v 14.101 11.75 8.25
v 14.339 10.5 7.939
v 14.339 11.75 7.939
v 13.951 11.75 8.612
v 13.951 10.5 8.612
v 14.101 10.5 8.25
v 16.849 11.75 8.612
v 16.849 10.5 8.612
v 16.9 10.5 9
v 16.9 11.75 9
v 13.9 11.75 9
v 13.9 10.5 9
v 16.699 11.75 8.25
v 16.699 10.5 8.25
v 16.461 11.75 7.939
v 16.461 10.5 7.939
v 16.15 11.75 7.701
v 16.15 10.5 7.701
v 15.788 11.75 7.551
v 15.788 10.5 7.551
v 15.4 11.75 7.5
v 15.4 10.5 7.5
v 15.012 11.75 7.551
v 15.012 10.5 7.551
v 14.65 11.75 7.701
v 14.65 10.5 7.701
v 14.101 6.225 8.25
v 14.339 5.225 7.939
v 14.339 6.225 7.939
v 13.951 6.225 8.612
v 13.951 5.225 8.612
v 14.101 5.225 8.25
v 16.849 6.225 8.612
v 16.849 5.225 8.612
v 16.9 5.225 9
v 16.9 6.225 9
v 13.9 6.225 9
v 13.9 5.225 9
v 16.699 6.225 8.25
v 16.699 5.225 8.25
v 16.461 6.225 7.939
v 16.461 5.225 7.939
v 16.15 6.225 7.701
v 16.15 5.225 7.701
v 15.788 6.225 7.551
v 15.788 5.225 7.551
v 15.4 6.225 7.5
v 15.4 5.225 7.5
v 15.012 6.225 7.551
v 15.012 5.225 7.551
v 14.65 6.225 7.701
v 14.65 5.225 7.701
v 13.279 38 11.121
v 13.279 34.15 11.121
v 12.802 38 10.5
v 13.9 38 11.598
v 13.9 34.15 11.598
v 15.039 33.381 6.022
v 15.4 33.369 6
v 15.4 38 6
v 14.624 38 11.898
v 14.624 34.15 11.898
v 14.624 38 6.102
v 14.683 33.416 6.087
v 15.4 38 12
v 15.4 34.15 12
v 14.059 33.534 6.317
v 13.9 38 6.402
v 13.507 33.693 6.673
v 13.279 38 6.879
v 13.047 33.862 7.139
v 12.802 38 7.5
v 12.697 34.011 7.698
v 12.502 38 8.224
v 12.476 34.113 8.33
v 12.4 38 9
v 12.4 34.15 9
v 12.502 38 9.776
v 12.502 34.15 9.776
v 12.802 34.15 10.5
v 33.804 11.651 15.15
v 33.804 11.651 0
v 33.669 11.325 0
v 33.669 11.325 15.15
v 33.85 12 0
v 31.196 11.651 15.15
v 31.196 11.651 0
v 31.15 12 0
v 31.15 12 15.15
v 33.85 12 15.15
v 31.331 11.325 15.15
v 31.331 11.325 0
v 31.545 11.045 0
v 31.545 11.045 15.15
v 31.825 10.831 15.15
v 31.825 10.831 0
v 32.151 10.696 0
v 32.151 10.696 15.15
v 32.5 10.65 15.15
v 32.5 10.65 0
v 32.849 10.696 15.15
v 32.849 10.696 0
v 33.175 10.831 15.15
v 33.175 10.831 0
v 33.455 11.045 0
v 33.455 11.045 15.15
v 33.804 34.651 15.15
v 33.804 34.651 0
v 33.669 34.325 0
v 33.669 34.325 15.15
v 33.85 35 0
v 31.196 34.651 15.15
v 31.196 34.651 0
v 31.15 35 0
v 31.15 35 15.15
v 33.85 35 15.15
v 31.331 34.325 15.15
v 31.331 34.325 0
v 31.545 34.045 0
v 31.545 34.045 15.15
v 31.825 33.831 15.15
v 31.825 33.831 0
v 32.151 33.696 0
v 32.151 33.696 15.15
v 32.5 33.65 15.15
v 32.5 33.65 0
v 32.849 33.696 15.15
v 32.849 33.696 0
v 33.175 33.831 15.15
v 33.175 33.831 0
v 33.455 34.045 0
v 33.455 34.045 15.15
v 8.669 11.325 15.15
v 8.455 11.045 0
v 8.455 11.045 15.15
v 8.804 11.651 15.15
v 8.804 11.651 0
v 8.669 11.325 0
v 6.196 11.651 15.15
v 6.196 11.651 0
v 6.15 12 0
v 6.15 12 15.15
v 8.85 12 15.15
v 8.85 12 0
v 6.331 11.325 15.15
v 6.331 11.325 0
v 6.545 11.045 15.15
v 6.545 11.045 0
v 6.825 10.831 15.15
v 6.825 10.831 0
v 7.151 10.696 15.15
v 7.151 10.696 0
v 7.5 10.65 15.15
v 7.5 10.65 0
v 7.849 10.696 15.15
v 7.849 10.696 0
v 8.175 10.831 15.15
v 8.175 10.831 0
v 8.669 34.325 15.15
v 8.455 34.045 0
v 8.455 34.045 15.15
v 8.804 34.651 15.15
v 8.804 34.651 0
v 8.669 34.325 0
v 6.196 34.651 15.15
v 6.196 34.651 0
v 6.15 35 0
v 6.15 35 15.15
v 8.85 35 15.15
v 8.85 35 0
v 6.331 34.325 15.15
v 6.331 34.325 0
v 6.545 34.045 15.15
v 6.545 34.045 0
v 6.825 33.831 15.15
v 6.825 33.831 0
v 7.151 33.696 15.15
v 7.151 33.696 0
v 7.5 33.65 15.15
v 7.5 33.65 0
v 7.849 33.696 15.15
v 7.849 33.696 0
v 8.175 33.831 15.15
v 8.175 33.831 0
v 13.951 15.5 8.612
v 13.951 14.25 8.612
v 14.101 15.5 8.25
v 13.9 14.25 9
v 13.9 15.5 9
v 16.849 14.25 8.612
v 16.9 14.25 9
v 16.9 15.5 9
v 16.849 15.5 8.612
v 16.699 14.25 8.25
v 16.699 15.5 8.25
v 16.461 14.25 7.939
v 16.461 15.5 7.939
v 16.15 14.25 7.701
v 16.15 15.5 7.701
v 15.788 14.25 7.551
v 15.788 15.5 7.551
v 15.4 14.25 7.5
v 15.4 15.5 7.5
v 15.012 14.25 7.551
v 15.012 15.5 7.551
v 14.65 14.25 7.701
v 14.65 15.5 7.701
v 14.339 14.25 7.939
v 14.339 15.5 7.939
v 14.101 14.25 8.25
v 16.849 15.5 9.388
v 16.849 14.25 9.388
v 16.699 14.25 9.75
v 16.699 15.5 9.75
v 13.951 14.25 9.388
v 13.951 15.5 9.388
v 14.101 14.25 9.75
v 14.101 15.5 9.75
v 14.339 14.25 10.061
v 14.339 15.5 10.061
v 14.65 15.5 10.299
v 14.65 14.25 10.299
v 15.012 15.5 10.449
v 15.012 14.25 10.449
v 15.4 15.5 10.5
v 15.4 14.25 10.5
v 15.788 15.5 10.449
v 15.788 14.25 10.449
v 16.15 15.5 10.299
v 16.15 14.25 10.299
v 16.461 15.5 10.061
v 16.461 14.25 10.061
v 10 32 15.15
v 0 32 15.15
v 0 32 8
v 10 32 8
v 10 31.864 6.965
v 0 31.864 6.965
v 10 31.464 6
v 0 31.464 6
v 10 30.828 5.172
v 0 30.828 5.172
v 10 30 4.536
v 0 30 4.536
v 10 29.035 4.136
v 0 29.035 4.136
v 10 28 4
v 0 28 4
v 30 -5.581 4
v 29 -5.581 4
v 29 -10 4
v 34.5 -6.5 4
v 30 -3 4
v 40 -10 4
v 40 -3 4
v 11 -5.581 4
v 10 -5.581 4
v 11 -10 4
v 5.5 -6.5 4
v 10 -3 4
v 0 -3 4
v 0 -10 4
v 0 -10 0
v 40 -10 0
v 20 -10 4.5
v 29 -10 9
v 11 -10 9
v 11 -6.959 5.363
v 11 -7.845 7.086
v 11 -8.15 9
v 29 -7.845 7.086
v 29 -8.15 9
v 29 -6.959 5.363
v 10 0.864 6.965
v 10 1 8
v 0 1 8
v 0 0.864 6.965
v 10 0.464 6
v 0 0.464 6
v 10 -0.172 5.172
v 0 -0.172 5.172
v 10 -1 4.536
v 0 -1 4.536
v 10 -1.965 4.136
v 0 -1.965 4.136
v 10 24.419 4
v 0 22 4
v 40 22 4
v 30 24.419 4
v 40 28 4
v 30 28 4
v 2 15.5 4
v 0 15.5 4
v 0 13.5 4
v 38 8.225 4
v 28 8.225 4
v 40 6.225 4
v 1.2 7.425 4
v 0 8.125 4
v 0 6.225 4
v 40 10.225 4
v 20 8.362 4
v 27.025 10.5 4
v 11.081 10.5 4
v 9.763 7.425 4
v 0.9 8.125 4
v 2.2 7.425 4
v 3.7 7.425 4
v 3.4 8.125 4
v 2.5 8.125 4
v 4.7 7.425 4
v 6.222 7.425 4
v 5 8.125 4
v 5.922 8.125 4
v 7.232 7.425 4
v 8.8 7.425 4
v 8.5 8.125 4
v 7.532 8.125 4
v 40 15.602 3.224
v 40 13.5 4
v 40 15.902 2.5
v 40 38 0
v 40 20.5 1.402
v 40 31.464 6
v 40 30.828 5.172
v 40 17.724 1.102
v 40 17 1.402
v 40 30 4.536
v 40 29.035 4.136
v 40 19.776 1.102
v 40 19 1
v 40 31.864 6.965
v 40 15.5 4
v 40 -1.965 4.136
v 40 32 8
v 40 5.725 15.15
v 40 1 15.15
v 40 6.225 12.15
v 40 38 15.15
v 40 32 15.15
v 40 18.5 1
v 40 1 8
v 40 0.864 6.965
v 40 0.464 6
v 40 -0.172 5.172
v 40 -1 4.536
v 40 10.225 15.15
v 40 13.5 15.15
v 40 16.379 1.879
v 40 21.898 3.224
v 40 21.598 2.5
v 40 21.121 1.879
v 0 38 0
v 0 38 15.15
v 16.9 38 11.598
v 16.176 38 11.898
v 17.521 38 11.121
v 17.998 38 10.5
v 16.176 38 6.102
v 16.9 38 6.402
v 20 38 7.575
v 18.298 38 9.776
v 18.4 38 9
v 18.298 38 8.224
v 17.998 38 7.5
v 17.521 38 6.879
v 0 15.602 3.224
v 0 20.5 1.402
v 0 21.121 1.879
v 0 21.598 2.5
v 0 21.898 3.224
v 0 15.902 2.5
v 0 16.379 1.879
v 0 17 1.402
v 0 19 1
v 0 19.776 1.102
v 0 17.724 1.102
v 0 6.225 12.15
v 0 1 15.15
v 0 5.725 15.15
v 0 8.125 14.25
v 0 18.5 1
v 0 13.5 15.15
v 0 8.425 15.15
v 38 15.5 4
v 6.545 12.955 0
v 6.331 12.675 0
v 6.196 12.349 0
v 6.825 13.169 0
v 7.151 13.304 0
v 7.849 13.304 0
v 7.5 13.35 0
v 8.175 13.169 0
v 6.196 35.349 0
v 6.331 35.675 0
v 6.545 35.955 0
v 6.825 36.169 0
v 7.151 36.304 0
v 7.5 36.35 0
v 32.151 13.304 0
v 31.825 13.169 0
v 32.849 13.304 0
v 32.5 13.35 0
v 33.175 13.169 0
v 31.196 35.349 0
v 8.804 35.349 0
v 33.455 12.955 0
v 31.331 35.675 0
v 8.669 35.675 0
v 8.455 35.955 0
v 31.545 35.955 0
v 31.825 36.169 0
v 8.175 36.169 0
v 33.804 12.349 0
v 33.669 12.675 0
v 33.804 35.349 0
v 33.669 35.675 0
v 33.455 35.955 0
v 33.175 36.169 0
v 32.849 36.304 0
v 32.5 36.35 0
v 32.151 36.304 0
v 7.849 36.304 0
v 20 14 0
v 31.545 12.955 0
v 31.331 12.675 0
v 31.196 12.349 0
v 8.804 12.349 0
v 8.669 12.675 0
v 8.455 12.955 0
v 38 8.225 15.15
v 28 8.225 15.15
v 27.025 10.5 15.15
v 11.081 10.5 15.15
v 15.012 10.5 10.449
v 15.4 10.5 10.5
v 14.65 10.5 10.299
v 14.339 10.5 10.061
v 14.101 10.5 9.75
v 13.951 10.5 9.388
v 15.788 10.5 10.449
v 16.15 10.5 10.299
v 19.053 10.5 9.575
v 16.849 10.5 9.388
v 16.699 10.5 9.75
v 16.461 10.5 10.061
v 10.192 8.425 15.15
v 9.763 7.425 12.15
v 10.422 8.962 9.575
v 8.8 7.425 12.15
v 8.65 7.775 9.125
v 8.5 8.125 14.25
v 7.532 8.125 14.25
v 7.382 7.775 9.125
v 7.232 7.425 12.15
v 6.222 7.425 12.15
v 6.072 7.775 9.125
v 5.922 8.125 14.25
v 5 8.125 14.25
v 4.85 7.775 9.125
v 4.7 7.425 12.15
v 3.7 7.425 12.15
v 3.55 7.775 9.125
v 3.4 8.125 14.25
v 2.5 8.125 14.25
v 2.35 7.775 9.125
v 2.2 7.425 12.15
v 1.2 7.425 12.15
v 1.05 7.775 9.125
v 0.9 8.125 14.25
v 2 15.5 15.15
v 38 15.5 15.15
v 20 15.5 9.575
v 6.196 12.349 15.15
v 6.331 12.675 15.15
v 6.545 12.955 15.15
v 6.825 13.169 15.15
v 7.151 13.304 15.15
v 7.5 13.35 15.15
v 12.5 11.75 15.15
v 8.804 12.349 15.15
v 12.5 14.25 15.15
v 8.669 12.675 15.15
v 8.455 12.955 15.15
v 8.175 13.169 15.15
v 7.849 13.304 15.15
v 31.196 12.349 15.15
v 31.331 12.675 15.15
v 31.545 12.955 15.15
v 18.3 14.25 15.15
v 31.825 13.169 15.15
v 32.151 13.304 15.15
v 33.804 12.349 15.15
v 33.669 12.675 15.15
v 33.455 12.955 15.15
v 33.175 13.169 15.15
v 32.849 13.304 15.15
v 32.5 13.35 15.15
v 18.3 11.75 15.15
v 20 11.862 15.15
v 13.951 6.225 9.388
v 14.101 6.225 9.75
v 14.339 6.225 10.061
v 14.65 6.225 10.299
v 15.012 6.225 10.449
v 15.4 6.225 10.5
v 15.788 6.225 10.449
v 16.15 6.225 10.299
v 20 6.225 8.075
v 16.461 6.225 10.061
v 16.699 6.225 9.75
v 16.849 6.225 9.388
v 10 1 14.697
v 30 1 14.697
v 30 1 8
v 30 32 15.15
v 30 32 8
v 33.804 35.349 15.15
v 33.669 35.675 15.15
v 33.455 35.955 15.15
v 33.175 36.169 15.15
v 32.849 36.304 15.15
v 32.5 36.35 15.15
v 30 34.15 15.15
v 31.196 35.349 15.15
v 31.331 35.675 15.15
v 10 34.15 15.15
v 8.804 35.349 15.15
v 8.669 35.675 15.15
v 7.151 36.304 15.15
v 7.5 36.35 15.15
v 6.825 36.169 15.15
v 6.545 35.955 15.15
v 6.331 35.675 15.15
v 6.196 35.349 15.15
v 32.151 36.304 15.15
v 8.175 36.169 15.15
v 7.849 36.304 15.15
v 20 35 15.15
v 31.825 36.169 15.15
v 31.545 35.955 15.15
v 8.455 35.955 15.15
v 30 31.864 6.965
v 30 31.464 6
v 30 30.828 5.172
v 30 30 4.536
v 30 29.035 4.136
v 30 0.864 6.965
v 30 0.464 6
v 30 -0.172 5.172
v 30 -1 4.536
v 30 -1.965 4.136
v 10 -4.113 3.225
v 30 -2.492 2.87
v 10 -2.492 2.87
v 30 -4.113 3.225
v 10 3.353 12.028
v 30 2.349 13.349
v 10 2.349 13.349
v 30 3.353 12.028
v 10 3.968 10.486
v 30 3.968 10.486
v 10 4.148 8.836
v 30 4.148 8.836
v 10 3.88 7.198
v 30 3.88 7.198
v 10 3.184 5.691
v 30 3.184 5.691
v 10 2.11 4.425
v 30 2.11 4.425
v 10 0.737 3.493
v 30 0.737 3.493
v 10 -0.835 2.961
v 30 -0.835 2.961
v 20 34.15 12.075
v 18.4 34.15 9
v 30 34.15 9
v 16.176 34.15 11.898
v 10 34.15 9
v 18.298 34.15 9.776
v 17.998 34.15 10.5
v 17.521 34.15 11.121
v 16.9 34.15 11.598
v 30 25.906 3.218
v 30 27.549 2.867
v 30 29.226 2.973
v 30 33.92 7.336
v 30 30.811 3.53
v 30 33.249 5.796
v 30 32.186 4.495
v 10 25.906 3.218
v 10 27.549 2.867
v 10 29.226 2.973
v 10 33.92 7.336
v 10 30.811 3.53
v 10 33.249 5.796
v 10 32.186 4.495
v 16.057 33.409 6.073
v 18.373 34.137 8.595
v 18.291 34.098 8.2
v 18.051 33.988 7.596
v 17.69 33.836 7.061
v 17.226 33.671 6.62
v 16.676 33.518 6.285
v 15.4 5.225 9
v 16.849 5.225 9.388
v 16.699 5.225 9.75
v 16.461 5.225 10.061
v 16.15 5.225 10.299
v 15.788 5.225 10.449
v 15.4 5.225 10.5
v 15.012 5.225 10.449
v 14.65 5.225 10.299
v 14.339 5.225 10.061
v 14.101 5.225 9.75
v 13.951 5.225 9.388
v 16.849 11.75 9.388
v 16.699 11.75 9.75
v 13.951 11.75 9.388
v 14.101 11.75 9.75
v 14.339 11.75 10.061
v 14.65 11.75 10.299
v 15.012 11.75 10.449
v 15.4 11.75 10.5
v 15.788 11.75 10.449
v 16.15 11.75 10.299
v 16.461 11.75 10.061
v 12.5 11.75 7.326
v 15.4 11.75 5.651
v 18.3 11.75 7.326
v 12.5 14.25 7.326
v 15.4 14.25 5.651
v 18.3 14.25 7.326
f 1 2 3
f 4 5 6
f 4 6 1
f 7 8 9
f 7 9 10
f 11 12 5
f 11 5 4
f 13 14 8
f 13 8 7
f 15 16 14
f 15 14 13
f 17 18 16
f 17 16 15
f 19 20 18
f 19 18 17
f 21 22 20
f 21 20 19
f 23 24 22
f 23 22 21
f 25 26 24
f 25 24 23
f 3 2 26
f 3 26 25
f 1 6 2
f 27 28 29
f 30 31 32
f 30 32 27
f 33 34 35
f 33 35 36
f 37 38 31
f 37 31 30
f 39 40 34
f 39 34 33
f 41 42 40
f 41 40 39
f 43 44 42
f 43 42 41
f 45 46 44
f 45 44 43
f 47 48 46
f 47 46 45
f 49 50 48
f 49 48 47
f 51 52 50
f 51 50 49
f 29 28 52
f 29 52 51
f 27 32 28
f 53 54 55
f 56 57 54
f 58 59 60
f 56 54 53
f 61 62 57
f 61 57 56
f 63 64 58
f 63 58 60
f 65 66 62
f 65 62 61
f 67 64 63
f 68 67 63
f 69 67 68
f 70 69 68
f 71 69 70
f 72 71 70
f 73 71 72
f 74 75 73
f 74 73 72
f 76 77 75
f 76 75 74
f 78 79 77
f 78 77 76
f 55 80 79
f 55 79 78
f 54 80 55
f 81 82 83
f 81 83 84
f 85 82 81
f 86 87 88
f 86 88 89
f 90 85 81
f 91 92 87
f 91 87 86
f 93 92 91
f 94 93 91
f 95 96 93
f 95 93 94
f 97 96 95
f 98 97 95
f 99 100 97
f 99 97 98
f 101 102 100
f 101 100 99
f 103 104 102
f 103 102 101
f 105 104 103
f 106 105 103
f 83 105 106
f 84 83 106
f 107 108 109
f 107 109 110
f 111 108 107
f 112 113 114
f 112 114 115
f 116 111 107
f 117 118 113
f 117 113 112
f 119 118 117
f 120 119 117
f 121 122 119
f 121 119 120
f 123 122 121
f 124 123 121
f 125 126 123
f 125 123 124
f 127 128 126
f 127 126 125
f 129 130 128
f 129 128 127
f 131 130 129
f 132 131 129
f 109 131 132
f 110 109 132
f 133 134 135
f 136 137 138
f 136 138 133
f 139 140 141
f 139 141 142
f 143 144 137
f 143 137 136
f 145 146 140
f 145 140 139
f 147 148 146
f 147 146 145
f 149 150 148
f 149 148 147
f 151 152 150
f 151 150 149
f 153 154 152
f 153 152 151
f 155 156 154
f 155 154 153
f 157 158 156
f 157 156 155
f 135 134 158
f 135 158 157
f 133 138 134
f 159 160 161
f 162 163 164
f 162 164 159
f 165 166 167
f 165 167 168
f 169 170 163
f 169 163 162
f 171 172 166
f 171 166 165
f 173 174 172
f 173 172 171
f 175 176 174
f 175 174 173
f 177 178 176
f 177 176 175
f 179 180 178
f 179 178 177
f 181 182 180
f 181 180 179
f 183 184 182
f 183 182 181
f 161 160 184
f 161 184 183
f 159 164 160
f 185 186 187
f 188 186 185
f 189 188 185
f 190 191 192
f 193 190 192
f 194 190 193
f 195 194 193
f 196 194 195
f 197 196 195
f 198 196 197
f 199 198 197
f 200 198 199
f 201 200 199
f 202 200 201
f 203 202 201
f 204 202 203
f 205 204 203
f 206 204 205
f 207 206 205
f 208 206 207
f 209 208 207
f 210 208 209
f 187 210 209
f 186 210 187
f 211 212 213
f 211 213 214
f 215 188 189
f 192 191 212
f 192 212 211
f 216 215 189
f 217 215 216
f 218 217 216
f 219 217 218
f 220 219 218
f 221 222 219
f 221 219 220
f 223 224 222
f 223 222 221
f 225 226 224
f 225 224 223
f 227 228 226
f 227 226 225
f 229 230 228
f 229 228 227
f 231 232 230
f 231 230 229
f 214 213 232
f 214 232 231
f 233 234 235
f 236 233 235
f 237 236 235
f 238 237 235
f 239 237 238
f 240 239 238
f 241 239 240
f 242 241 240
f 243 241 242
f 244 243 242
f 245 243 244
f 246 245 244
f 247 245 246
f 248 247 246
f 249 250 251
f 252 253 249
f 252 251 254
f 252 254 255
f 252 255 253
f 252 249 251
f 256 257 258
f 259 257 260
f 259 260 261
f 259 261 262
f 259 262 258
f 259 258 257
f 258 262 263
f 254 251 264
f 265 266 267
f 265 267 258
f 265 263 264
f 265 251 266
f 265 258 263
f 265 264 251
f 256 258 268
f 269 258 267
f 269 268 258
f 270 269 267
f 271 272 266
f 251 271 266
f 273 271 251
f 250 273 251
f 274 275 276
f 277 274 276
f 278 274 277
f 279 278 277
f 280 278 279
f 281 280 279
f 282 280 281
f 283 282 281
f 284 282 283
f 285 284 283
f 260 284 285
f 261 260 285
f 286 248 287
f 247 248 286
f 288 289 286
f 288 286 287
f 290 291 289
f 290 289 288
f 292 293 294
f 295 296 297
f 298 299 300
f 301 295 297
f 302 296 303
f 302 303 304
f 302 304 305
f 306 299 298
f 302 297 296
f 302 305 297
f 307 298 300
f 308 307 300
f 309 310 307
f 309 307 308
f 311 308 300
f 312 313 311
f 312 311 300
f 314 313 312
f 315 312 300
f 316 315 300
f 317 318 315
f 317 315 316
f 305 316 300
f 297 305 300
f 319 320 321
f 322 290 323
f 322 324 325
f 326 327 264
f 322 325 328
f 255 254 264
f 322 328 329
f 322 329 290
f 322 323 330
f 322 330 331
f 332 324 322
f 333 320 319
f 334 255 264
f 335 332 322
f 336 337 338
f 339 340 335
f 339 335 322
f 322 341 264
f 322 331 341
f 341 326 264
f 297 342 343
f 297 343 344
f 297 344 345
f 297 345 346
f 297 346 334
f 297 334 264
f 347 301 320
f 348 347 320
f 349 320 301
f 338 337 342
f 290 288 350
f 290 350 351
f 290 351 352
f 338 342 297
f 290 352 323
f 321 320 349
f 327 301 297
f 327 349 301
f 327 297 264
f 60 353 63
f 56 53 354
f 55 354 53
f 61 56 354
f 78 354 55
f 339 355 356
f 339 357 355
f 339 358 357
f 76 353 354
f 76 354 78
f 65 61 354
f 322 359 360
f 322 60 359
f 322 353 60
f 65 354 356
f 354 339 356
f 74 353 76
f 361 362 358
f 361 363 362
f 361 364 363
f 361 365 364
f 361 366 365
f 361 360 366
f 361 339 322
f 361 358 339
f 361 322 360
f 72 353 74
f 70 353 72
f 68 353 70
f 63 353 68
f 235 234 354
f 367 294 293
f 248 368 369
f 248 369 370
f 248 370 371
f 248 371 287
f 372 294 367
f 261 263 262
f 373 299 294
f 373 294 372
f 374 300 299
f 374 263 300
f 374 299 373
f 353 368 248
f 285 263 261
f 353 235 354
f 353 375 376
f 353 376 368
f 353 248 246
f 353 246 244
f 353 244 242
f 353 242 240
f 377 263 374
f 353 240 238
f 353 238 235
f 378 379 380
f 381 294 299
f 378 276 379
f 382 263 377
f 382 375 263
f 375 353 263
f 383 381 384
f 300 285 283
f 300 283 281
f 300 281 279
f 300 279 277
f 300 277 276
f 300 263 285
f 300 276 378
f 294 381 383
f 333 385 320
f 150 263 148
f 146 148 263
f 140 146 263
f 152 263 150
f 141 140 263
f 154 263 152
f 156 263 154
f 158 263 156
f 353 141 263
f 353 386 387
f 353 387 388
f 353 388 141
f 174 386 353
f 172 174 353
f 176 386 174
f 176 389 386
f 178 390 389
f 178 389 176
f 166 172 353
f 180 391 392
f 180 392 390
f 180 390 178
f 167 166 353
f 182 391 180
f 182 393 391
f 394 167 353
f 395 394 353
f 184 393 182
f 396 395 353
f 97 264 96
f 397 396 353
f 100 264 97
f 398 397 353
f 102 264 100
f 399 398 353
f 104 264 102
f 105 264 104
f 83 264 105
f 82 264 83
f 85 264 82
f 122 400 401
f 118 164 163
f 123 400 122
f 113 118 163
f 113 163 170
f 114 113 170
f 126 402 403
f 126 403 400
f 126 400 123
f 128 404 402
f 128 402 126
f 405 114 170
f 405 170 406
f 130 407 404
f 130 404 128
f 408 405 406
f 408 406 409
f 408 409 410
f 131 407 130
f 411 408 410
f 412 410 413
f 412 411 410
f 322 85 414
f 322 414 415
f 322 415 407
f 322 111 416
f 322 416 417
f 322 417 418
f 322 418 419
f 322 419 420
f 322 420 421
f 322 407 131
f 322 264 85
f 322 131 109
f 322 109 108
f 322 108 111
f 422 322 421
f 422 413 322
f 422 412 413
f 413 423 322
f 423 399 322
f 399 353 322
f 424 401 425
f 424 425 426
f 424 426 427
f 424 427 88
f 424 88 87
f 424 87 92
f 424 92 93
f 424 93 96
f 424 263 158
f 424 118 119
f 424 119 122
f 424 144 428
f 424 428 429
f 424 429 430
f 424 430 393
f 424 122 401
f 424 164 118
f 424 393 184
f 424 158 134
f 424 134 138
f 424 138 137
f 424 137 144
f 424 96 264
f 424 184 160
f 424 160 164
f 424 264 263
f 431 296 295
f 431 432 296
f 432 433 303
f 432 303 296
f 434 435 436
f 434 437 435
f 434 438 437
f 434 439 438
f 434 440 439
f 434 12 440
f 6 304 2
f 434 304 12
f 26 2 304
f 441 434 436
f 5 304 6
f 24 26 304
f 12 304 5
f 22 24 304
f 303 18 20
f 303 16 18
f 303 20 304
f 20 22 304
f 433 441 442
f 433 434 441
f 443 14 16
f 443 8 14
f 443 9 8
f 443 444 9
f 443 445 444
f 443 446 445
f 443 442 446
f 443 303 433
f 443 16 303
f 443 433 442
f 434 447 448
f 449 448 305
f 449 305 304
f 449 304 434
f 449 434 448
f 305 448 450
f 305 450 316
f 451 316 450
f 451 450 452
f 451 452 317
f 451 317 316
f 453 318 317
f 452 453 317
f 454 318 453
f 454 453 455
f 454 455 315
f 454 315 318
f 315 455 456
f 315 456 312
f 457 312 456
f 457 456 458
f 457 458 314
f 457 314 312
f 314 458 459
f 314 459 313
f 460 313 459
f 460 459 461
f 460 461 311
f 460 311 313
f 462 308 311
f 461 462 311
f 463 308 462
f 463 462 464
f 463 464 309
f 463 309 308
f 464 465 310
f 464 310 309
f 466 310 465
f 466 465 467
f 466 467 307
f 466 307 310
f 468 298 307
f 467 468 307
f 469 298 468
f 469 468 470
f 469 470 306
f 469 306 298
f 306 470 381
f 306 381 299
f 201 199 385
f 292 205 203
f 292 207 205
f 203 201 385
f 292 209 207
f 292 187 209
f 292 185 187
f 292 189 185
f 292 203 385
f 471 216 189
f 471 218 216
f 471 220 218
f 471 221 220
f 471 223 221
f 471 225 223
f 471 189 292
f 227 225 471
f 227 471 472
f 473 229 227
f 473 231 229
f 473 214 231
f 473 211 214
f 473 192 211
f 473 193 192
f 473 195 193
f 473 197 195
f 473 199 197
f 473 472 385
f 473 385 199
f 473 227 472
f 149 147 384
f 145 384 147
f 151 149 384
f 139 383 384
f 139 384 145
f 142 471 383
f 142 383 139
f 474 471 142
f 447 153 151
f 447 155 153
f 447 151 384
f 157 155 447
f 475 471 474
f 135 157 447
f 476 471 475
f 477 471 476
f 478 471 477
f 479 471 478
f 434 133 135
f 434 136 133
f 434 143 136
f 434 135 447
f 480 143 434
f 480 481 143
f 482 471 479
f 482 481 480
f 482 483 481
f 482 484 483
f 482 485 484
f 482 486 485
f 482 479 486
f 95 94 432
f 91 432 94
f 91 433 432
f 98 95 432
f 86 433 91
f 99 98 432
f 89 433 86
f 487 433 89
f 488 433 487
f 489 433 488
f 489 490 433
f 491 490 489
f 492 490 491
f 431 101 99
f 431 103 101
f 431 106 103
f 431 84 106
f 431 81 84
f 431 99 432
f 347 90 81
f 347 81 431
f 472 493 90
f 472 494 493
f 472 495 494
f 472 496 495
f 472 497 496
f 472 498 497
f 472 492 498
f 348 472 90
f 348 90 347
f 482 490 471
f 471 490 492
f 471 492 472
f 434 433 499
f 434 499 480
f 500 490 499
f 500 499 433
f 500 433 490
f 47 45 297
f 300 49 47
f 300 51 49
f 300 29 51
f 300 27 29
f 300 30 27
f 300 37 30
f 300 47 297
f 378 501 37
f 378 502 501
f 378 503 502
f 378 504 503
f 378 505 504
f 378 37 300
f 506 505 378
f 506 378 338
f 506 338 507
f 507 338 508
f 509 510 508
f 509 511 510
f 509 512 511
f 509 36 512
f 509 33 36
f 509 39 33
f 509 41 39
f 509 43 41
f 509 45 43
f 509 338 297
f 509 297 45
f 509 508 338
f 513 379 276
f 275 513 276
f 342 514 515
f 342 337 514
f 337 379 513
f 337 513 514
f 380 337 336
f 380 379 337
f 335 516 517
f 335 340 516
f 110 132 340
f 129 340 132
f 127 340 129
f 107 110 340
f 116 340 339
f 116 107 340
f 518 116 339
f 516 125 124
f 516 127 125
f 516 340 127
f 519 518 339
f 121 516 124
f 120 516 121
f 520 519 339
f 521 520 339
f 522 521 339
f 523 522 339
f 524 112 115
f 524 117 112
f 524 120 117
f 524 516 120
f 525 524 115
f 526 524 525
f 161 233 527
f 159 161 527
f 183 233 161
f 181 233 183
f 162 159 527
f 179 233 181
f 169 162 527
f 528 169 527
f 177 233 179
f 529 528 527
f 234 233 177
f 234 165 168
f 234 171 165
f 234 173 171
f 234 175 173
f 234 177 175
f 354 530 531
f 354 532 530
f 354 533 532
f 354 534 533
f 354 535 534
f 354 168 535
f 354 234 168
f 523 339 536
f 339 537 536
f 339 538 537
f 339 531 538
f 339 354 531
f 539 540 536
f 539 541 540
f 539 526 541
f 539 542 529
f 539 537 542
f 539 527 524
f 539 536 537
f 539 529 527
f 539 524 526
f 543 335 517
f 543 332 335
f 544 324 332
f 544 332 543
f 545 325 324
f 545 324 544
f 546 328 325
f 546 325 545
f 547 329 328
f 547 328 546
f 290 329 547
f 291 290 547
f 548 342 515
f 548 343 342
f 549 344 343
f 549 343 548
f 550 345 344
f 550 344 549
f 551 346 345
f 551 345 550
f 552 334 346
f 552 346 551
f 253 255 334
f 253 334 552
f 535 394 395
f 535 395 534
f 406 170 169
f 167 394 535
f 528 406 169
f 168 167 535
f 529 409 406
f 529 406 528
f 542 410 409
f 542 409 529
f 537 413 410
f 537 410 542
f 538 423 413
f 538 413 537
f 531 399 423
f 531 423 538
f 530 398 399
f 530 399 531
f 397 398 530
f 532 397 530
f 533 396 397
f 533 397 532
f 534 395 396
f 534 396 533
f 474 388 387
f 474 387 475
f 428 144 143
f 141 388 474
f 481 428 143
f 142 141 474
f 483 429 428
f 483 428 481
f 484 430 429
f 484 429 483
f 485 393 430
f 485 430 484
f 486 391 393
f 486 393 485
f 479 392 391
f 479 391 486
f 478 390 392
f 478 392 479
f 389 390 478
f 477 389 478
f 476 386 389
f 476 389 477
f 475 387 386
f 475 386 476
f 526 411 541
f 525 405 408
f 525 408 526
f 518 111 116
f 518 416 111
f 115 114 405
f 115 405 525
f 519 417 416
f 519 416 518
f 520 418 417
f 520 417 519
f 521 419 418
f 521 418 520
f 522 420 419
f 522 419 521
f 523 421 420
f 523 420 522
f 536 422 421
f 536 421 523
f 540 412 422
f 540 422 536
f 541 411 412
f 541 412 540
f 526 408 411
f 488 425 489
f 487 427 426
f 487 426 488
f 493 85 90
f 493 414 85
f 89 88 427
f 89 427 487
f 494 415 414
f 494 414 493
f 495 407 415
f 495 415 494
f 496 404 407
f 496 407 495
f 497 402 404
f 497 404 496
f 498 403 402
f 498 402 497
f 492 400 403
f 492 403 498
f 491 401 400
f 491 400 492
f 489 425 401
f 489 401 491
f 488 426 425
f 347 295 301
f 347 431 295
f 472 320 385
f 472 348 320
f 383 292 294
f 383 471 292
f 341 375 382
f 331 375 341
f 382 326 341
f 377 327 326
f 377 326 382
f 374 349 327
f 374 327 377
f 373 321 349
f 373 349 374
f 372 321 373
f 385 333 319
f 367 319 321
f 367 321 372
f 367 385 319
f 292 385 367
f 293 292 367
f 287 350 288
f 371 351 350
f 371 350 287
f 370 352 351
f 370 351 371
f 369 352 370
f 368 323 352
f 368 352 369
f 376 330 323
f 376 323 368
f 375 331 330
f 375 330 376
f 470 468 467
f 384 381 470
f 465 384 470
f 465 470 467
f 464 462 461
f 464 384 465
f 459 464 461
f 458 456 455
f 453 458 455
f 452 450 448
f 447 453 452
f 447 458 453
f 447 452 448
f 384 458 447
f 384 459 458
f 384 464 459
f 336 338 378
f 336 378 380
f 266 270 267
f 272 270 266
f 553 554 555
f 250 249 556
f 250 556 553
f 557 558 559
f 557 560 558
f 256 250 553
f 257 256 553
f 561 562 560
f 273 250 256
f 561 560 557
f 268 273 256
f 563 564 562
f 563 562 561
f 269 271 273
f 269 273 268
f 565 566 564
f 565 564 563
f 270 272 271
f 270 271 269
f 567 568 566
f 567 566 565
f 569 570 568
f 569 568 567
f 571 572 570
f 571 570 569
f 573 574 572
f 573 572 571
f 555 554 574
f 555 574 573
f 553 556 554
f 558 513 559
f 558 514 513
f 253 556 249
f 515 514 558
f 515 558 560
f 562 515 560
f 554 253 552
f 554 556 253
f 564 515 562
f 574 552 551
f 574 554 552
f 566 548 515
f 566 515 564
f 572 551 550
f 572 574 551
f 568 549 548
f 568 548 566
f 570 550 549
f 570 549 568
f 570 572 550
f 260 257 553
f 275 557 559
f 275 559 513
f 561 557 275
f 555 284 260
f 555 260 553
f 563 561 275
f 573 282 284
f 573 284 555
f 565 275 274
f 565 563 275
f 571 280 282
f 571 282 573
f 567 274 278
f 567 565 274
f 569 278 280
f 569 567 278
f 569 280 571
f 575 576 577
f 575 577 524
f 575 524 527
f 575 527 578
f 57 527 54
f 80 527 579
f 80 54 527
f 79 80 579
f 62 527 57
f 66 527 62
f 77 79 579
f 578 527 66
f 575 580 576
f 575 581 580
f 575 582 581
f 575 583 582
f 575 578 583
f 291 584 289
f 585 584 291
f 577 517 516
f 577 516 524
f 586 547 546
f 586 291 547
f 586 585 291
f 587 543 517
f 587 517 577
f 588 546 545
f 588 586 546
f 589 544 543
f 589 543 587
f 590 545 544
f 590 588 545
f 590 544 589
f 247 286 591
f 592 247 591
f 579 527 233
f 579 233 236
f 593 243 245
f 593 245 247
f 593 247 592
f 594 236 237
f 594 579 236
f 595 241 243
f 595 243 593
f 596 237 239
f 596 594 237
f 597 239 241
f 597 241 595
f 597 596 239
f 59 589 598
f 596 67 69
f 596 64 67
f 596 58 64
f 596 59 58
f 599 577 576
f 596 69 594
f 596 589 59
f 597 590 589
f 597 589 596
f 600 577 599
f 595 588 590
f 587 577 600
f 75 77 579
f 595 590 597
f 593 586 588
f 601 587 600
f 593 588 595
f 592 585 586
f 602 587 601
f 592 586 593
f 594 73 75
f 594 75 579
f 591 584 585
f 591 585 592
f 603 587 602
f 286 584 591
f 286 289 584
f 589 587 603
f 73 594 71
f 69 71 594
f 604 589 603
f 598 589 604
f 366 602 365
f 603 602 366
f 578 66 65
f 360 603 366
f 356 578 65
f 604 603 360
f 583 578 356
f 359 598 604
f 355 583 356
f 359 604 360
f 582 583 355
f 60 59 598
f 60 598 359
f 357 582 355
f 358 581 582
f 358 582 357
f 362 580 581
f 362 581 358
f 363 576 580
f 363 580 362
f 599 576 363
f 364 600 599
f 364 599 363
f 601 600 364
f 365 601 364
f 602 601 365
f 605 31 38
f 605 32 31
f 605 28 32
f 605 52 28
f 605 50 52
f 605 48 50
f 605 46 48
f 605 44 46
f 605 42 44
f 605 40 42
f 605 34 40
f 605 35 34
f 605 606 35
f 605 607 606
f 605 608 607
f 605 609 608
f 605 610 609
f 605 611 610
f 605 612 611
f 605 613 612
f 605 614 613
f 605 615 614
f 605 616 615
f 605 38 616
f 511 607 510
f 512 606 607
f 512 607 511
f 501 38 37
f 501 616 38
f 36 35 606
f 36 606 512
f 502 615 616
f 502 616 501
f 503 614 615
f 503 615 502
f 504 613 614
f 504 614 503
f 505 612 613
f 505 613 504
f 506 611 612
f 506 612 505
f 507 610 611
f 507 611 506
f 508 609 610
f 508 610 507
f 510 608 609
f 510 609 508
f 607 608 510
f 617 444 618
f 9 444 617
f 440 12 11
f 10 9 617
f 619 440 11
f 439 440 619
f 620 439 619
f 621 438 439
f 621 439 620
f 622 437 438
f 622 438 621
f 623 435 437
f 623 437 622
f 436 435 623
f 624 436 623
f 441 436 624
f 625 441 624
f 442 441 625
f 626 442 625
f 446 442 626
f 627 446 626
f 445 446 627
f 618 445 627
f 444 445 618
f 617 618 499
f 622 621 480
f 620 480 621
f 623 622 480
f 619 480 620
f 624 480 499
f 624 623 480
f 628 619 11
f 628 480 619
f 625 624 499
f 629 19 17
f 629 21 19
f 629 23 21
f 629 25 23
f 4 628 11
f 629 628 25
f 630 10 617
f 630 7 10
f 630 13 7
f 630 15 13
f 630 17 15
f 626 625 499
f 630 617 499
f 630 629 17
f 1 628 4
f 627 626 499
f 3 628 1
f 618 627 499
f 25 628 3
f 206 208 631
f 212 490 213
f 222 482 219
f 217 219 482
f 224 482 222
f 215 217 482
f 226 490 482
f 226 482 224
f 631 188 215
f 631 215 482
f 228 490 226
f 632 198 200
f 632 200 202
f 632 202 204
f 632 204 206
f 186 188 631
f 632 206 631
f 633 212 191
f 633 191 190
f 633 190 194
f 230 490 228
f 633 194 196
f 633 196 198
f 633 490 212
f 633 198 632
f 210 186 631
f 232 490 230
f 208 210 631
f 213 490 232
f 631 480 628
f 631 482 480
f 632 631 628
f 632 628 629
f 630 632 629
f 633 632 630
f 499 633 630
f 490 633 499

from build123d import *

# Parameters (mm, degrees)
SKETCH1_W                = 40
SKETCH1_H                = 48
BOSS_EXTRUDE1_DEPTH      = 4
BOSS_EXTRUDE2_DEPTH      = 11.15
BOSS_EXTRUDE2_DEPTH_BACK = 4
SKETCH5_W                = 40
SKETCH5_H                = 5.225
SKETCH5_W_2              = 18
SKETCH5_H_2              = 5
SKETCH5_H_3              = 6
FILLET1_R                = 4
SKETCH6_R                = 1.35
CUT_EXTRUDE4_DEPTH       = 58.214705278
CHAMFER2_SIZE            = 2
SKETCH7_W                = 40
SKETCH7_H                = 6.5
CUT_EXTRUDE5_DEPTH       = 3
FILLET2_R                = 3
CHAMFER3_SIZE            = 3
CHAMFER3_SIZE2           = 1
CHAMFER4_SIZE            = 3
CHAMFER4_SIZE2           = 0.5
CUT_EXTRUDE6_DEPTH       = 10
CUT_EXTRUDE6_DEPTH_BACK  = 10
CUT_EXTRUDE8_REACH       = 66.292
SKETCH12_R               = 3
SKETCH13_R               = 1.5
CUT_EXTRUDE10_DEPTH      = 10.275
CUT_EXTRUDE7_DEPTH       = 1.25
CUT_EXTRUDE7_DEPTH_BACK  = 1.25


with BuildPart() as part:
    # Sketch1 → Boss-Extrude1 (new body)
    with BuildSketch(Plane.XY):
        with Locations((20, 14)):
            Rectangle(SKETCH1_W, SKETCH1_H)
    extrude(amount=BOSS_EXTRUDE1_DEPTH)

    # Sketch5 → Boss-Extrude2 (add, two sides: drawn at the far end of the back side and taken through both)
    with BuildSketch(Plane.XY.offset(4).offset(-BOSS_EXTRUDE2_DEPTH_BACK)):
        Polygon((0.9, 8.125), (0, 8.125), (0, 15.5), (40, 15.5), (40, 8.225), (28, 8.225), (27.025, 10.5), (11.081237185, 10.5), (9.763380042, 7.425), (8.800403155, 7.425), (8.500403155, 8.125), (7.531690021, 8.125), (7.231690021, 7.425), (6.221941609, 7.425), (5.921941609, 8.125), (5, 8.125), (4.7, 7.425), (3.7, 7.425), (3.4, 8.125), (2.5, 8.125), (2.2, 7.425), (1.2, 7.425), align=None)
        with Locations((20, 3.6125)):
            Rectangle(SKETCH5_W, SKETCH5_H)
        with Locations((20, -7.5)):
            Rectangle(SKETCH5_W_2, SKETCH5_H_2)
        with Locations((20, 35)):
            Rectangle(SKETCH5_W, SKETCH5_H_3)
    extrude(amount=BOSS_EXTRUDE2_DEPTH + BOSS_EXTRUDE2_DEPTH_BACK)

    # Fillet1
    fillet1_edges = [part.edges().sort_by_distance(p)[0] for p in [
        (20, 1, 4),
        (20, 32, 4),
    ]]
    fillet(fillet1_edges, radius=FILLET1_R)

    # Sketch6 → Cut-Extrude4 (cut, through all)
    with BuildSketch(Plane.XY.offset(15.15)):
        with Locations((7.5, 35)):
            Circle(SKETCH6_R)
        with Locations((7.5, 12)):
            Circle(SKETCH6_R)
        with Locations((32.5, 35)):
            Circle(SKETCH6_R)
        with Locations((32.5, 12)):
            Circle(SKETCH6_R)
    extrude(amount=-CUT_EXTRUDE4_DEPTH, mode=Mode.SUBTRACT)

    # Chamfer2
    chamfer2_edges = [part.edges().sort_by_distance(p)[0] for p in [
        (40, 8.225, 9.575),
        (0, 15.5, 9.575),
        (40, 15.5, 9.575),
    ]]
    chamfer(chamfer2_edges, length=CHAMFER2_SIZE)

    # Sketch7 → Cut-Extrude5 (cut)
    with BuildSketch(Plane.XY.offset(4)):
        with Locations((20, 18.75)):
            Rectangle(SKETCH7_W, SKETCH7_H)
    extrude(amount=-CUT_EXTRUDE5_DEPTH, mode=Mode.SUBTRACT)

    # Fillet2
    fillet2_edges = [part.edges().sort_by_distance(p)[0] for p in [
        (20, 15.5, 1),
        (20, 22, 1),
    ]]
    fillet(fillet2_edges, radius=FILLET2_R - 0.0001)  # a hair under: the kernel refuses the full size

    # Chamfer3
    chamfer3_edges = [part.edges().sort_by_distance(p)[0] for p in [
        (4.2, 7.425, 15.15),
    ]]
    chamfer3_side = [part.faces().sort_by_distance(p)[0] for p in [
        (4.2, 7.425, 9.575),
    ]]
    chamfer(chamfer3_edges, length=CHAMFER3_SIZE, length2=CHAMFER3_SIZE2, reference=chamfer3_side[0])

    # Chamfer4
    chamfer4_edges = [part.edges().sort_by_distance(p)[0] for p in [
        (20, 6.225, 15.15),
    ]]
    chamfer4_side = [part.faces().sort_by_distance(p)[0] for p in [
        (20, 6.225, 9.575),
    ]]
    chamfer(chamfer4_edges, length=CHAMFER4_SIZE, length2=CHAMFER4_SIZE2, reference=chamfer4_side[0])

    # Sketch8 → Cut-Extrude6 (cut, two sides: drawn at the far end of the back side and taken through both)
    with BuildSketch(Plane(origin=(20, 0, 0), x_dir=(0, 0, -1), z_dir=(1, 0, 0)).offset(-CUT_EXTRUDE6_DEPTH_BACK)):
        with BuildLine():
            Line((-9, 34.15), (-18.856272107, 34.15))
            Line((-18.856272107, 34.15), (-18.856272107, 21.85))
            Line((-18.856272107, 21.85), (-9, 21.85))
            ThreePointArc((-9, 21.85), (-2.85, 28), (-9, 34.15))
        make_face()
        with BuildLine():
            Line((-18.856272107, -10.437196649), (-18.856272107, -3.158858698))
            Line((-18.856272107, -3.158858698), (-13.348706704, 2.348706704))
            ThreePointArc((-13.348706704, 2.348706704), (-3.318140875, 0.353503109), (-9, -8.15))
            Line((-9, -8.15), (-9, -10.437196649))
            Line((-9, -10.437196649), (-18.856272107, -10.437196649))
        make_face()
    extrude(amount=CUT_EXTRUDE6_DEPTH + CUT_EXTRUDE6_DEPTH_BACK, mode=Mode.SUBTRACT)

    # Cut-Extrude8: up to this face of the body (flat: up to its plane)
    cut_extrude8_end = Plane(part.part.faces().sort_by_distance((20, 15.5, 9.574944444))[0])
    # Sketch12 → Cut-Extrude8 (cut, up to the picked face)
    with BuildSketch(Plane(origin=(0, 38, 0), x_dir=(1, 0, 0), z_dir=(0, 1, 0)), mode=Mode.PRIVATE) as cut_extrude8_sk1:
        with Locations(Location((15.4, -9, 0), (0, 0, 270))):
            Circle(SKETCH12_R)
    cut_extrude8_tool1 = split(extrude(cut_extrude8_sk1.sketch, amount=-CUT_EXTRUDE8_REACH, mode=Mode.PRIVATE), bisect_by=cut_extrude8_end, keep=Keep.BOTH, mode=Mode.PRIVATE)
    add(cut_extrude8_tool1.solids().sort_by(Axis((15.4, 38, 9), (0, -1, 0)))[0], mode=Mode.SUBTRACT)

    # Sketch13 → Cut-Extrude10 (cut)
    with BuildSketch(Plane(origin=(0, 15.5, 0), x_dir=(1, 0, 0), z_dir=(0, 1, 0))):
        with Locations(Location((15.4, -9, 0), (0, 0, 180))):
            Circle(SKETCH13_R)
    extrude(amount=-CUT_EXTRUDE10_DEPTH, mode=Mode.SUBTRACT)

    # Sketch9 → Cut-Extrude7 (cut, two sides: drawn at the far end of the back side and taken through both)
    with BuildSketch(Plane.XZ.offset(-13).offset(-CUT_EXTRUDE7_DEPTH_BACK)):
        Polygon((12.5, 16.815347994), (18.3, 16.815347994), (18.3, 7.325684219), (15.4, 5.651368439), (12.5, 7.325684219), align=None)
    extrude(amount=CUT_EXTRUDE7_DEPTH + CUT_EXTRUDE7_DEPTH_BACK, mode=Mode.SUBTRACT)


solid = part.part
